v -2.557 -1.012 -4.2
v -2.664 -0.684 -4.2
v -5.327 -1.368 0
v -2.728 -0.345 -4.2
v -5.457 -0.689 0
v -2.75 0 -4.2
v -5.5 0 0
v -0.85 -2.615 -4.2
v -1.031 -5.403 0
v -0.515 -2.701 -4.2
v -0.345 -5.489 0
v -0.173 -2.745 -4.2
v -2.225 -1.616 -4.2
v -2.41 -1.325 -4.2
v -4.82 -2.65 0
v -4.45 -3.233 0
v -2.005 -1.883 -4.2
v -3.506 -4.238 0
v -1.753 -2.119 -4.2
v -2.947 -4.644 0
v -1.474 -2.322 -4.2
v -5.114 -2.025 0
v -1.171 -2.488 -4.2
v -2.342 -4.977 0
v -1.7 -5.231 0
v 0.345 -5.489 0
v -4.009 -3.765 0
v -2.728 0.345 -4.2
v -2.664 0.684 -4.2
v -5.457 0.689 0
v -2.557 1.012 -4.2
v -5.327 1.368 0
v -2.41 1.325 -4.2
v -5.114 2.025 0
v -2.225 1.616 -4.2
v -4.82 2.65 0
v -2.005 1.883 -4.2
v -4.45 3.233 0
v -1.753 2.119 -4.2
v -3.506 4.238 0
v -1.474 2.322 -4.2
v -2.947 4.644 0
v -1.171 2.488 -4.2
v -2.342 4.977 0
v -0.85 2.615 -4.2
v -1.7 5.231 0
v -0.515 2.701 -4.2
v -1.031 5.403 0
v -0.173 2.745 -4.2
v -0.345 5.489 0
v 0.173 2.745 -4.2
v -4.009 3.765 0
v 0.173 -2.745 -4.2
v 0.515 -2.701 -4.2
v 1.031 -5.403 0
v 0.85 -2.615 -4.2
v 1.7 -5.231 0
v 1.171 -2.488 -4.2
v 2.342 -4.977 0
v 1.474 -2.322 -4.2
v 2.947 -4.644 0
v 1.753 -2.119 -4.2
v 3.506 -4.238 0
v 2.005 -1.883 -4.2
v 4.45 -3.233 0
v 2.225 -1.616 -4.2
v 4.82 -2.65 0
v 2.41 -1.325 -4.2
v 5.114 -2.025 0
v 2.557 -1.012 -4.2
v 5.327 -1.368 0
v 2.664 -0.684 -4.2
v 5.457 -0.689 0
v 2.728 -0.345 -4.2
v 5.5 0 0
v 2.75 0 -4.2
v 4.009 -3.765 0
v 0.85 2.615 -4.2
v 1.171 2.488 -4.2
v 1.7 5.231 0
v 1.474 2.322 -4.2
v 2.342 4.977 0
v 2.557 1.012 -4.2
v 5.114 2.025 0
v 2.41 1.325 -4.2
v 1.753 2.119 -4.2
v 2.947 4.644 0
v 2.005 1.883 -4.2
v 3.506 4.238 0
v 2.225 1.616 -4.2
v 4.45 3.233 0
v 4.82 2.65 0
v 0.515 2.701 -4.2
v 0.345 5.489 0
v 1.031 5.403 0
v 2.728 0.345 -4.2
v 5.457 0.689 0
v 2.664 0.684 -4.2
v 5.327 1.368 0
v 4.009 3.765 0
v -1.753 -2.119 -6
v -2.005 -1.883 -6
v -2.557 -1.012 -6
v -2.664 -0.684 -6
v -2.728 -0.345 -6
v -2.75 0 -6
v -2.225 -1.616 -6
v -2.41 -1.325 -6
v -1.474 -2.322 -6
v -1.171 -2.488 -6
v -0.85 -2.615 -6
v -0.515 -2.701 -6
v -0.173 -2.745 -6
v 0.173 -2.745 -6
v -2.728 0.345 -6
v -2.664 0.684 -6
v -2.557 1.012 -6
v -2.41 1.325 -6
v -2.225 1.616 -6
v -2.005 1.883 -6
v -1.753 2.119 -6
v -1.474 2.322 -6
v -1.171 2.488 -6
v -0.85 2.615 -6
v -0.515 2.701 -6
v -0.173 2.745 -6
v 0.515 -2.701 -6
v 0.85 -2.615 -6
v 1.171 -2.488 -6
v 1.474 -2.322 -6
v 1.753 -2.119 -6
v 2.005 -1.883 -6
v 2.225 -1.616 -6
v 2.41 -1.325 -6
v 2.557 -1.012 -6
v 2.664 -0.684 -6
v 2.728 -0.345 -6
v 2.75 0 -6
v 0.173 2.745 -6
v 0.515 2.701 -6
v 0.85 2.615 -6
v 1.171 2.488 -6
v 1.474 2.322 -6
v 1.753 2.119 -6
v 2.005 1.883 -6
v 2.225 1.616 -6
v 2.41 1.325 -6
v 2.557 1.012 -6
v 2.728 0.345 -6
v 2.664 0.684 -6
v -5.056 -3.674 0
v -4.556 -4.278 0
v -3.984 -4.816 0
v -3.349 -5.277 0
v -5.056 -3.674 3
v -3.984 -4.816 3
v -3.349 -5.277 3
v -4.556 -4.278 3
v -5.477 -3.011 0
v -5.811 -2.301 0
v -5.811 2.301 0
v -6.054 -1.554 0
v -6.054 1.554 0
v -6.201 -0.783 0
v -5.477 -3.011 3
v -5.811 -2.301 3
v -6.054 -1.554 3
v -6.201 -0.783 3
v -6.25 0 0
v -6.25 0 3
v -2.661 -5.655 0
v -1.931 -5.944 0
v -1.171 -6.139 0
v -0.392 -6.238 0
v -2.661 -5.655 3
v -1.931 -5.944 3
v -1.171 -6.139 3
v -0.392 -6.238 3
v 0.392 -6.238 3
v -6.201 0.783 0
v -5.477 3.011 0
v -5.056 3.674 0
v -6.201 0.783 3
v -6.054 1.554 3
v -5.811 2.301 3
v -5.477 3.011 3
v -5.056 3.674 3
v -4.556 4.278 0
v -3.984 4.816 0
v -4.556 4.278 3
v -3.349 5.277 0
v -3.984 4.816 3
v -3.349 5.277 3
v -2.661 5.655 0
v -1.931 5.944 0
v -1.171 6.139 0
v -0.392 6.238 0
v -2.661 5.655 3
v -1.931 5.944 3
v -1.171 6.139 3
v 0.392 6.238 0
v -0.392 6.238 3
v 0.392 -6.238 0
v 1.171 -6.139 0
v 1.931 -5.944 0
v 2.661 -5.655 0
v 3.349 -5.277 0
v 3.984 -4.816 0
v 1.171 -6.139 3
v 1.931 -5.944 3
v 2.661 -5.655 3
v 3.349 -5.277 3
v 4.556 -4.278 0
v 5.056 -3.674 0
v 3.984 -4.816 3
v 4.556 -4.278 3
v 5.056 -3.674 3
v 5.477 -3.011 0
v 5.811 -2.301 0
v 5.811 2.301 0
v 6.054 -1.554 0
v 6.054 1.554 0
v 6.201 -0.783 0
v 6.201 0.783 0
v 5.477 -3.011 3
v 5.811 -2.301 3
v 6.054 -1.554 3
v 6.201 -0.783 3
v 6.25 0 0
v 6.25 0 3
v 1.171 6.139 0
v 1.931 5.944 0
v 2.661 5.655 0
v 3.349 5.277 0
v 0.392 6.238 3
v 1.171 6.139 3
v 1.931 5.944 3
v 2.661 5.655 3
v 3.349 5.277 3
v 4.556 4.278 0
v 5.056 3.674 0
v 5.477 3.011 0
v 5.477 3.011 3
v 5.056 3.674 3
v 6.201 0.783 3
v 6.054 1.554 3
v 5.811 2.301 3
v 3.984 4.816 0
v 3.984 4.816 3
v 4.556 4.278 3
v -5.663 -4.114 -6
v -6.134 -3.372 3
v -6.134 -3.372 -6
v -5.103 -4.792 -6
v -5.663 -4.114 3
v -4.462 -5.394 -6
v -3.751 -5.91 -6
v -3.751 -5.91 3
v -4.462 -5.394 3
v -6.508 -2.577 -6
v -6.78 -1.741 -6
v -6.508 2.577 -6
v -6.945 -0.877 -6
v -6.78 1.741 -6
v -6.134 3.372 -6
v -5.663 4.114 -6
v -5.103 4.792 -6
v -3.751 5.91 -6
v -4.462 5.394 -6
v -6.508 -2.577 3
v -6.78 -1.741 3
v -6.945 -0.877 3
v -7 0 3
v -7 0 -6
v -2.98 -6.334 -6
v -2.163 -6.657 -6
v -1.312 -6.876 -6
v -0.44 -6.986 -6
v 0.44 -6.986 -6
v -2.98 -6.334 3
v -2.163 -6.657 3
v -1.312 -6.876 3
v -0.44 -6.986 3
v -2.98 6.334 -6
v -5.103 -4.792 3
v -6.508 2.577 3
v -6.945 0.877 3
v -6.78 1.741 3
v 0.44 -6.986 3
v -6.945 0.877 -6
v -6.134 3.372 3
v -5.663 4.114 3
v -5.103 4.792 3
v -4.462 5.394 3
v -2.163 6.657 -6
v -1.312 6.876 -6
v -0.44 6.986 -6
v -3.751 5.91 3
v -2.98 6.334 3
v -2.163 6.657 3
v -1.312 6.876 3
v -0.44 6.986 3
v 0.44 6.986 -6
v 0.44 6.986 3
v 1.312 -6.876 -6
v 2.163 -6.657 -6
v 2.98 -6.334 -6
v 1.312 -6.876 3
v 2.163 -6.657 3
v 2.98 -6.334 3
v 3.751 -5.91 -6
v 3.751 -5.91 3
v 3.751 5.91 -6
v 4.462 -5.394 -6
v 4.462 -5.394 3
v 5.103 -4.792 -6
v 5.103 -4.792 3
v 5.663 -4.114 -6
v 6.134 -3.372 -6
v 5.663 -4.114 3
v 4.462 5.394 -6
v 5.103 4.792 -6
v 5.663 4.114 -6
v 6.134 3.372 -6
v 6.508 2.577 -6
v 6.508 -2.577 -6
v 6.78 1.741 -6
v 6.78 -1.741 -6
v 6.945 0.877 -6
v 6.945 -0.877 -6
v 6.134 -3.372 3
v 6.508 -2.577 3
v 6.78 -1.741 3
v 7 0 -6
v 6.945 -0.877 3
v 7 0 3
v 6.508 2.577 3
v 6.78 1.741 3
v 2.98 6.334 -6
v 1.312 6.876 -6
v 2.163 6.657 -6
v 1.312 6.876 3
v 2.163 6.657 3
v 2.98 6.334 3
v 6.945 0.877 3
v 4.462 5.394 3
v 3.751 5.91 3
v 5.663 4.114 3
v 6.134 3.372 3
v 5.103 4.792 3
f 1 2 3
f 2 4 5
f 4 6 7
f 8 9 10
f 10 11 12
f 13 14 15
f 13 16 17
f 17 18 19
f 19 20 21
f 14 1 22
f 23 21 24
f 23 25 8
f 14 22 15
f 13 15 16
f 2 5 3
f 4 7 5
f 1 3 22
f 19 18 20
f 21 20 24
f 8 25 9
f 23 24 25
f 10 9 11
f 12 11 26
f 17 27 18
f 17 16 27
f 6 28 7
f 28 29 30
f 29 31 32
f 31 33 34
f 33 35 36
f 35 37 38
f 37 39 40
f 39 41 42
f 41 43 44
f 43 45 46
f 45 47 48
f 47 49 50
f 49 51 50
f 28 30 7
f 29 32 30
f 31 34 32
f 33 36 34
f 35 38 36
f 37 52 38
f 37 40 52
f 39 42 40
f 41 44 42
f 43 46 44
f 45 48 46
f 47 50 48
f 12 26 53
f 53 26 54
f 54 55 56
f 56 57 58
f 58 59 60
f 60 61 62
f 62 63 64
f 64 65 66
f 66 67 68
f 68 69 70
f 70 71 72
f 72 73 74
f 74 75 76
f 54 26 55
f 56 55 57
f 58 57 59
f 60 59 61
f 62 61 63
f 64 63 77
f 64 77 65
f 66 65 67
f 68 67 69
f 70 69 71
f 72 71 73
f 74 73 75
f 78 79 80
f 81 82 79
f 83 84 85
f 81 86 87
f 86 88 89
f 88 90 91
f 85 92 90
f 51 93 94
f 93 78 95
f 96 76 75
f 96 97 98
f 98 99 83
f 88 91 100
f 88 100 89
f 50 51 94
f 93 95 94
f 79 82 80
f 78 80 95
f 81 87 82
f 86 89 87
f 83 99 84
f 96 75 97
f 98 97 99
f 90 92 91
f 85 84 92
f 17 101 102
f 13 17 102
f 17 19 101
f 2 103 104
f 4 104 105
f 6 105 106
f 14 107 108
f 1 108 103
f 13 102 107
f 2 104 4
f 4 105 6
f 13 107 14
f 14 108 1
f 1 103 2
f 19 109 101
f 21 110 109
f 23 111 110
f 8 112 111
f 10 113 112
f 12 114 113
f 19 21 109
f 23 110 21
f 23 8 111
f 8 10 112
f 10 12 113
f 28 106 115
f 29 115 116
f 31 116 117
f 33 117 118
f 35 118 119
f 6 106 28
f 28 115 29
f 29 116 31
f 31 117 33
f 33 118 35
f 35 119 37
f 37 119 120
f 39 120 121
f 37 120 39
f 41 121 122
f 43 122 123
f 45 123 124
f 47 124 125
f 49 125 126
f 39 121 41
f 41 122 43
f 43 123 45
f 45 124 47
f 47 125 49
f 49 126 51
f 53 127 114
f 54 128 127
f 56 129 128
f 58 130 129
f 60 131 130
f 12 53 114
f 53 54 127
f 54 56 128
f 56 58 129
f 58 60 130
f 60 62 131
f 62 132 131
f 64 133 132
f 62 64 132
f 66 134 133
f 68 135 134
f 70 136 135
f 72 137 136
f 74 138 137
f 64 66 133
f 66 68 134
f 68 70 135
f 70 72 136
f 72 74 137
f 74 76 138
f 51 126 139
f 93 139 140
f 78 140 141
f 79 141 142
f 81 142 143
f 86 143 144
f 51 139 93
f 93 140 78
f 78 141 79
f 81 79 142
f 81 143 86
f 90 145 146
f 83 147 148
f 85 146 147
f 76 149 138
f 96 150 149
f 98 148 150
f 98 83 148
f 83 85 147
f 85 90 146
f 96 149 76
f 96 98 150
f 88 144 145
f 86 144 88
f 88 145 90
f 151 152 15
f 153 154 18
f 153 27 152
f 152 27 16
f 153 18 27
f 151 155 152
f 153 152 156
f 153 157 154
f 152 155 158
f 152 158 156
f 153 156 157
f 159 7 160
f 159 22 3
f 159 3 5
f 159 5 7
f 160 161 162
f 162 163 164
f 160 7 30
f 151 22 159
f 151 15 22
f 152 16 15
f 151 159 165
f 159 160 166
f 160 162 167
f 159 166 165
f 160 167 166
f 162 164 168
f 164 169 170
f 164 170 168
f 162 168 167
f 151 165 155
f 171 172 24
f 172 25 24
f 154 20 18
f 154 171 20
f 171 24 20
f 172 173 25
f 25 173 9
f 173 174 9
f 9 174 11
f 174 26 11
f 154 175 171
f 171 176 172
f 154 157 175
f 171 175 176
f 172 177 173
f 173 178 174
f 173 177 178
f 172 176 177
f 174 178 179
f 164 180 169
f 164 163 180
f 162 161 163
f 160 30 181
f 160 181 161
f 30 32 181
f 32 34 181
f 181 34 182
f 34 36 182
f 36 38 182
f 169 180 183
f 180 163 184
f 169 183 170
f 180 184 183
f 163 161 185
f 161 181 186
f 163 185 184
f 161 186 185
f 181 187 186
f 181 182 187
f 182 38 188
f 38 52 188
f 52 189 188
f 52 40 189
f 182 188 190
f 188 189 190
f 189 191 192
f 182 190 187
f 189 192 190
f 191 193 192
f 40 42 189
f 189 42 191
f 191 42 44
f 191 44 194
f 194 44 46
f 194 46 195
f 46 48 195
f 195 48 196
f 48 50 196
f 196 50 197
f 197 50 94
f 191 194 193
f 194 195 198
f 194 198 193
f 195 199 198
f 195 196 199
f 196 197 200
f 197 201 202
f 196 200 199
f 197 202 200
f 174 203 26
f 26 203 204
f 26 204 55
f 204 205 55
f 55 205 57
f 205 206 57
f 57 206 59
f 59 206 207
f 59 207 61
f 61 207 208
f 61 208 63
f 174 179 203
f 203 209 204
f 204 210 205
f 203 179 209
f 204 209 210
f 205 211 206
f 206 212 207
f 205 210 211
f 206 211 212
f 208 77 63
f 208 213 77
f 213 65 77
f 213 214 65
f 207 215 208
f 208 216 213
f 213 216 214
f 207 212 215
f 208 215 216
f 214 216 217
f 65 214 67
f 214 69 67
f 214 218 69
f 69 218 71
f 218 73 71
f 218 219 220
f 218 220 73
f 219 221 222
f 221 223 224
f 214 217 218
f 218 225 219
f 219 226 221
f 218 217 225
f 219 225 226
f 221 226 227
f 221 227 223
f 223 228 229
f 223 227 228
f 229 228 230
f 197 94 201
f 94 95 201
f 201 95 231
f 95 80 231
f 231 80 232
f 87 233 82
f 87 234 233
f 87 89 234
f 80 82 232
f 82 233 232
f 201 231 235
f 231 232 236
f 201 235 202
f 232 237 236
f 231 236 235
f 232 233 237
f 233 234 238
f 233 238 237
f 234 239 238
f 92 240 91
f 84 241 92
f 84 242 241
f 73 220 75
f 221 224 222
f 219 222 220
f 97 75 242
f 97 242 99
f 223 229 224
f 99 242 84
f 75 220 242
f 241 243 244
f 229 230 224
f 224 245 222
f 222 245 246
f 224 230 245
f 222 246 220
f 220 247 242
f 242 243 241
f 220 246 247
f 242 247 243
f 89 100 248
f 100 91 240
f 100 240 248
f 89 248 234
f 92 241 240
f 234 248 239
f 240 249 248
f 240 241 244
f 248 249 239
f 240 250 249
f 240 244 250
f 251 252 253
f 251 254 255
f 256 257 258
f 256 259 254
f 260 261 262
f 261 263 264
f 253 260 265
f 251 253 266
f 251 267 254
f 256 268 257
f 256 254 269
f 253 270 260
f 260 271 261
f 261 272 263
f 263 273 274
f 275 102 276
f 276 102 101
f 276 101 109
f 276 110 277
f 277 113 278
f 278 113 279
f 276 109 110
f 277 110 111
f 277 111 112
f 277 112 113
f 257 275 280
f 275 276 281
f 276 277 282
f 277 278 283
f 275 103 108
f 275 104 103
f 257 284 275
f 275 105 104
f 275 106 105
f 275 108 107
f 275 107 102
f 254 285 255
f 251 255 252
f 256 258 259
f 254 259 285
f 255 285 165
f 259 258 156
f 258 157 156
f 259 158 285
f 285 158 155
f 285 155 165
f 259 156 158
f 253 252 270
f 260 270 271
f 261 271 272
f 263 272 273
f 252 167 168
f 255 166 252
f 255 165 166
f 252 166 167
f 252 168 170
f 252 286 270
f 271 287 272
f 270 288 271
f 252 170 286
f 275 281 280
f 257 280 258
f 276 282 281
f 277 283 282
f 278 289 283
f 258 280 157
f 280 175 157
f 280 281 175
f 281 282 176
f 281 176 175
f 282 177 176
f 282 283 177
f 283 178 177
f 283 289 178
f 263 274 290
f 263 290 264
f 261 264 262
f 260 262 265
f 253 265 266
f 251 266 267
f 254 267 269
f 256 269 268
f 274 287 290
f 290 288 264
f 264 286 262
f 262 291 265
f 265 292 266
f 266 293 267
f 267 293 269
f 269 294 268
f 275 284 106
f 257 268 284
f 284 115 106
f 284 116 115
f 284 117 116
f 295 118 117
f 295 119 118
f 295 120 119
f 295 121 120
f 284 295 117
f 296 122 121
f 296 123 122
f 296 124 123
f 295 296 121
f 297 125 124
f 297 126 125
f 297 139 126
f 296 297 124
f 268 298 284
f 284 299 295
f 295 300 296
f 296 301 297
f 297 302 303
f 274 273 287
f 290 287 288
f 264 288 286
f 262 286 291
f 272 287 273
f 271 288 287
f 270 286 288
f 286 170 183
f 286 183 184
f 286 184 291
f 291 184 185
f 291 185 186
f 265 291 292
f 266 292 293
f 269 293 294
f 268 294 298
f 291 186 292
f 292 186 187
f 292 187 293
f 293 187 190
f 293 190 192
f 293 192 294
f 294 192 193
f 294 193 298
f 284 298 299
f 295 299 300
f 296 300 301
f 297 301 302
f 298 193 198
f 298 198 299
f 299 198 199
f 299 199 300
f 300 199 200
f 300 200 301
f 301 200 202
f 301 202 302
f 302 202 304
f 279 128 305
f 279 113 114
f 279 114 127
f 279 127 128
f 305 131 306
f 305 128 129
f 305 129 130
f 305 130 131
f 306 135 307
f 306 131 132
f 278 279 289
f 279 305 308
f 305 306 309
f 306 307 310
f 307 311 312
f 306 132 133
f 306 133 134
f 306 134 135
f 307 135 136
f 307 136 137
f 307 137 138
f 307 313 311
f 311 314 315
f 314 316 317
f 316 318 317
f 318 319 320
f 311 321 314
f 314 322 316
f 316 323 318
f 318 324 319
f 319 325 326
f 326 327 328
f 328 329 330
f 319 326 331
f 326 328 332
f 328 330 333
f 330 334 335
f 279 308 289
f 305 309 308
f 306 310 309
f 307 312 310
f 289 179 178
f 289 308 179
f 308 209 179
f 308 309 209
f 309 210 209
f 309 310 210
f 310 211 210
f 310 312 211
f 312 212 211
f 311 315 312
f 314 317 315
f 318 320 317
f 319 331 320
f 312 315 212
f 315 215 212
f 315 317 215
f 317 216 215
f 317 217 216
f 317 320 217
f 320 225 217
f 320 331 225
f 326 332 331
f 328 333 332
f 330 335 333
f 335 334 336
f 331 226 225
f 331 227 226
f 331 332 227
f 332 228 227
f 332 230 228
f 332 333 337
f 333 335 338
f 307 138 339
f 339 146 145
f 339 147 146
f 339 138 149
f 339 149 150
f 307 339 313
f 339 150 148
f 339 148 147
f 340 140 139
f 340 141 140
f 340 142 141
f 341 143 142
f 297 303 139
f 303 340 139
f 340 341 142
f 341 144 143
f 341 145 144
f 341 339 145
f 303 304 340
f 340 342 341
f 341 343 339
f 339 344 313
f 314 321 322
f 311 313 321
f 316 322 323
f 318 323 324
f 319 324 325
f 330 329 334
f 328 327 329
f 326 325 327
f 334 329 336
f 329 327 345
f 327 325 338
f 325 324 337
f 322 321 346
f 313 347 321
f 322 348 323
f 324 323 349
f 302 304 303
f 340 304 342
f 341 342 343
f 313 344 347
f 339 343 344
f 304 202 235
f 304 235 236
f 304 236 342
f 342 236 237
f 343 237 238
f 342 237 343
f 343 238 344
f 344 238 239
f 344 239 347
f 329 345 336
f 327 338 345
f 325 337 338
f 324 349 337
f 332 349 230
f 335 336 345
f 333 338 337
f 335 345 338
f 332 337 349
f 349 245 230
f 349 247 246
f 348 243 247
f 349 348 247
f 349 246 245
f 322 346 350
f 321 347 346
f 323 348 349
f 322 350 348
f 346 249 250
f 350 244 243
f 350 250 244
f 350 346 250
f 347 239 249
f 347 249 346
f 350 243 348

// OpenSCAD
$fn = 50;


difference() {
	union() {
		translate(v = [0, 0, -6.0000000000]) {
			cylinder(h = 9, r = 7.0000000000);
		}
	}
	union() {
		translate(v = [0, 0, 0]) {
			rotate(a = [0, 0, 0]) {
				difference() {
					union() {
						translate(v = [0, 0, -9.0000000000]) {
							cylinder(h = 9, r = 2.2500000000);
						}
						translate(v = [0, 0, -4.2000000000]) {
							cylinder(h = 4.2000000000, r1 = 2.7500000000, r2 = 5.5000000000);
						}
						translate(v = [0, 0, -9.0000000000]) {
							cylinder(h = 9, r = 2.7500000000);
						}
						translate(v = [0, 0, -9.0000000000]) {
							cylinder(h = 9, r = 2.2500000000);
						}
					}
					union();
				}
			}
		}
		#cylinder(h = 3, r = 6.2500000000);
	}
}
